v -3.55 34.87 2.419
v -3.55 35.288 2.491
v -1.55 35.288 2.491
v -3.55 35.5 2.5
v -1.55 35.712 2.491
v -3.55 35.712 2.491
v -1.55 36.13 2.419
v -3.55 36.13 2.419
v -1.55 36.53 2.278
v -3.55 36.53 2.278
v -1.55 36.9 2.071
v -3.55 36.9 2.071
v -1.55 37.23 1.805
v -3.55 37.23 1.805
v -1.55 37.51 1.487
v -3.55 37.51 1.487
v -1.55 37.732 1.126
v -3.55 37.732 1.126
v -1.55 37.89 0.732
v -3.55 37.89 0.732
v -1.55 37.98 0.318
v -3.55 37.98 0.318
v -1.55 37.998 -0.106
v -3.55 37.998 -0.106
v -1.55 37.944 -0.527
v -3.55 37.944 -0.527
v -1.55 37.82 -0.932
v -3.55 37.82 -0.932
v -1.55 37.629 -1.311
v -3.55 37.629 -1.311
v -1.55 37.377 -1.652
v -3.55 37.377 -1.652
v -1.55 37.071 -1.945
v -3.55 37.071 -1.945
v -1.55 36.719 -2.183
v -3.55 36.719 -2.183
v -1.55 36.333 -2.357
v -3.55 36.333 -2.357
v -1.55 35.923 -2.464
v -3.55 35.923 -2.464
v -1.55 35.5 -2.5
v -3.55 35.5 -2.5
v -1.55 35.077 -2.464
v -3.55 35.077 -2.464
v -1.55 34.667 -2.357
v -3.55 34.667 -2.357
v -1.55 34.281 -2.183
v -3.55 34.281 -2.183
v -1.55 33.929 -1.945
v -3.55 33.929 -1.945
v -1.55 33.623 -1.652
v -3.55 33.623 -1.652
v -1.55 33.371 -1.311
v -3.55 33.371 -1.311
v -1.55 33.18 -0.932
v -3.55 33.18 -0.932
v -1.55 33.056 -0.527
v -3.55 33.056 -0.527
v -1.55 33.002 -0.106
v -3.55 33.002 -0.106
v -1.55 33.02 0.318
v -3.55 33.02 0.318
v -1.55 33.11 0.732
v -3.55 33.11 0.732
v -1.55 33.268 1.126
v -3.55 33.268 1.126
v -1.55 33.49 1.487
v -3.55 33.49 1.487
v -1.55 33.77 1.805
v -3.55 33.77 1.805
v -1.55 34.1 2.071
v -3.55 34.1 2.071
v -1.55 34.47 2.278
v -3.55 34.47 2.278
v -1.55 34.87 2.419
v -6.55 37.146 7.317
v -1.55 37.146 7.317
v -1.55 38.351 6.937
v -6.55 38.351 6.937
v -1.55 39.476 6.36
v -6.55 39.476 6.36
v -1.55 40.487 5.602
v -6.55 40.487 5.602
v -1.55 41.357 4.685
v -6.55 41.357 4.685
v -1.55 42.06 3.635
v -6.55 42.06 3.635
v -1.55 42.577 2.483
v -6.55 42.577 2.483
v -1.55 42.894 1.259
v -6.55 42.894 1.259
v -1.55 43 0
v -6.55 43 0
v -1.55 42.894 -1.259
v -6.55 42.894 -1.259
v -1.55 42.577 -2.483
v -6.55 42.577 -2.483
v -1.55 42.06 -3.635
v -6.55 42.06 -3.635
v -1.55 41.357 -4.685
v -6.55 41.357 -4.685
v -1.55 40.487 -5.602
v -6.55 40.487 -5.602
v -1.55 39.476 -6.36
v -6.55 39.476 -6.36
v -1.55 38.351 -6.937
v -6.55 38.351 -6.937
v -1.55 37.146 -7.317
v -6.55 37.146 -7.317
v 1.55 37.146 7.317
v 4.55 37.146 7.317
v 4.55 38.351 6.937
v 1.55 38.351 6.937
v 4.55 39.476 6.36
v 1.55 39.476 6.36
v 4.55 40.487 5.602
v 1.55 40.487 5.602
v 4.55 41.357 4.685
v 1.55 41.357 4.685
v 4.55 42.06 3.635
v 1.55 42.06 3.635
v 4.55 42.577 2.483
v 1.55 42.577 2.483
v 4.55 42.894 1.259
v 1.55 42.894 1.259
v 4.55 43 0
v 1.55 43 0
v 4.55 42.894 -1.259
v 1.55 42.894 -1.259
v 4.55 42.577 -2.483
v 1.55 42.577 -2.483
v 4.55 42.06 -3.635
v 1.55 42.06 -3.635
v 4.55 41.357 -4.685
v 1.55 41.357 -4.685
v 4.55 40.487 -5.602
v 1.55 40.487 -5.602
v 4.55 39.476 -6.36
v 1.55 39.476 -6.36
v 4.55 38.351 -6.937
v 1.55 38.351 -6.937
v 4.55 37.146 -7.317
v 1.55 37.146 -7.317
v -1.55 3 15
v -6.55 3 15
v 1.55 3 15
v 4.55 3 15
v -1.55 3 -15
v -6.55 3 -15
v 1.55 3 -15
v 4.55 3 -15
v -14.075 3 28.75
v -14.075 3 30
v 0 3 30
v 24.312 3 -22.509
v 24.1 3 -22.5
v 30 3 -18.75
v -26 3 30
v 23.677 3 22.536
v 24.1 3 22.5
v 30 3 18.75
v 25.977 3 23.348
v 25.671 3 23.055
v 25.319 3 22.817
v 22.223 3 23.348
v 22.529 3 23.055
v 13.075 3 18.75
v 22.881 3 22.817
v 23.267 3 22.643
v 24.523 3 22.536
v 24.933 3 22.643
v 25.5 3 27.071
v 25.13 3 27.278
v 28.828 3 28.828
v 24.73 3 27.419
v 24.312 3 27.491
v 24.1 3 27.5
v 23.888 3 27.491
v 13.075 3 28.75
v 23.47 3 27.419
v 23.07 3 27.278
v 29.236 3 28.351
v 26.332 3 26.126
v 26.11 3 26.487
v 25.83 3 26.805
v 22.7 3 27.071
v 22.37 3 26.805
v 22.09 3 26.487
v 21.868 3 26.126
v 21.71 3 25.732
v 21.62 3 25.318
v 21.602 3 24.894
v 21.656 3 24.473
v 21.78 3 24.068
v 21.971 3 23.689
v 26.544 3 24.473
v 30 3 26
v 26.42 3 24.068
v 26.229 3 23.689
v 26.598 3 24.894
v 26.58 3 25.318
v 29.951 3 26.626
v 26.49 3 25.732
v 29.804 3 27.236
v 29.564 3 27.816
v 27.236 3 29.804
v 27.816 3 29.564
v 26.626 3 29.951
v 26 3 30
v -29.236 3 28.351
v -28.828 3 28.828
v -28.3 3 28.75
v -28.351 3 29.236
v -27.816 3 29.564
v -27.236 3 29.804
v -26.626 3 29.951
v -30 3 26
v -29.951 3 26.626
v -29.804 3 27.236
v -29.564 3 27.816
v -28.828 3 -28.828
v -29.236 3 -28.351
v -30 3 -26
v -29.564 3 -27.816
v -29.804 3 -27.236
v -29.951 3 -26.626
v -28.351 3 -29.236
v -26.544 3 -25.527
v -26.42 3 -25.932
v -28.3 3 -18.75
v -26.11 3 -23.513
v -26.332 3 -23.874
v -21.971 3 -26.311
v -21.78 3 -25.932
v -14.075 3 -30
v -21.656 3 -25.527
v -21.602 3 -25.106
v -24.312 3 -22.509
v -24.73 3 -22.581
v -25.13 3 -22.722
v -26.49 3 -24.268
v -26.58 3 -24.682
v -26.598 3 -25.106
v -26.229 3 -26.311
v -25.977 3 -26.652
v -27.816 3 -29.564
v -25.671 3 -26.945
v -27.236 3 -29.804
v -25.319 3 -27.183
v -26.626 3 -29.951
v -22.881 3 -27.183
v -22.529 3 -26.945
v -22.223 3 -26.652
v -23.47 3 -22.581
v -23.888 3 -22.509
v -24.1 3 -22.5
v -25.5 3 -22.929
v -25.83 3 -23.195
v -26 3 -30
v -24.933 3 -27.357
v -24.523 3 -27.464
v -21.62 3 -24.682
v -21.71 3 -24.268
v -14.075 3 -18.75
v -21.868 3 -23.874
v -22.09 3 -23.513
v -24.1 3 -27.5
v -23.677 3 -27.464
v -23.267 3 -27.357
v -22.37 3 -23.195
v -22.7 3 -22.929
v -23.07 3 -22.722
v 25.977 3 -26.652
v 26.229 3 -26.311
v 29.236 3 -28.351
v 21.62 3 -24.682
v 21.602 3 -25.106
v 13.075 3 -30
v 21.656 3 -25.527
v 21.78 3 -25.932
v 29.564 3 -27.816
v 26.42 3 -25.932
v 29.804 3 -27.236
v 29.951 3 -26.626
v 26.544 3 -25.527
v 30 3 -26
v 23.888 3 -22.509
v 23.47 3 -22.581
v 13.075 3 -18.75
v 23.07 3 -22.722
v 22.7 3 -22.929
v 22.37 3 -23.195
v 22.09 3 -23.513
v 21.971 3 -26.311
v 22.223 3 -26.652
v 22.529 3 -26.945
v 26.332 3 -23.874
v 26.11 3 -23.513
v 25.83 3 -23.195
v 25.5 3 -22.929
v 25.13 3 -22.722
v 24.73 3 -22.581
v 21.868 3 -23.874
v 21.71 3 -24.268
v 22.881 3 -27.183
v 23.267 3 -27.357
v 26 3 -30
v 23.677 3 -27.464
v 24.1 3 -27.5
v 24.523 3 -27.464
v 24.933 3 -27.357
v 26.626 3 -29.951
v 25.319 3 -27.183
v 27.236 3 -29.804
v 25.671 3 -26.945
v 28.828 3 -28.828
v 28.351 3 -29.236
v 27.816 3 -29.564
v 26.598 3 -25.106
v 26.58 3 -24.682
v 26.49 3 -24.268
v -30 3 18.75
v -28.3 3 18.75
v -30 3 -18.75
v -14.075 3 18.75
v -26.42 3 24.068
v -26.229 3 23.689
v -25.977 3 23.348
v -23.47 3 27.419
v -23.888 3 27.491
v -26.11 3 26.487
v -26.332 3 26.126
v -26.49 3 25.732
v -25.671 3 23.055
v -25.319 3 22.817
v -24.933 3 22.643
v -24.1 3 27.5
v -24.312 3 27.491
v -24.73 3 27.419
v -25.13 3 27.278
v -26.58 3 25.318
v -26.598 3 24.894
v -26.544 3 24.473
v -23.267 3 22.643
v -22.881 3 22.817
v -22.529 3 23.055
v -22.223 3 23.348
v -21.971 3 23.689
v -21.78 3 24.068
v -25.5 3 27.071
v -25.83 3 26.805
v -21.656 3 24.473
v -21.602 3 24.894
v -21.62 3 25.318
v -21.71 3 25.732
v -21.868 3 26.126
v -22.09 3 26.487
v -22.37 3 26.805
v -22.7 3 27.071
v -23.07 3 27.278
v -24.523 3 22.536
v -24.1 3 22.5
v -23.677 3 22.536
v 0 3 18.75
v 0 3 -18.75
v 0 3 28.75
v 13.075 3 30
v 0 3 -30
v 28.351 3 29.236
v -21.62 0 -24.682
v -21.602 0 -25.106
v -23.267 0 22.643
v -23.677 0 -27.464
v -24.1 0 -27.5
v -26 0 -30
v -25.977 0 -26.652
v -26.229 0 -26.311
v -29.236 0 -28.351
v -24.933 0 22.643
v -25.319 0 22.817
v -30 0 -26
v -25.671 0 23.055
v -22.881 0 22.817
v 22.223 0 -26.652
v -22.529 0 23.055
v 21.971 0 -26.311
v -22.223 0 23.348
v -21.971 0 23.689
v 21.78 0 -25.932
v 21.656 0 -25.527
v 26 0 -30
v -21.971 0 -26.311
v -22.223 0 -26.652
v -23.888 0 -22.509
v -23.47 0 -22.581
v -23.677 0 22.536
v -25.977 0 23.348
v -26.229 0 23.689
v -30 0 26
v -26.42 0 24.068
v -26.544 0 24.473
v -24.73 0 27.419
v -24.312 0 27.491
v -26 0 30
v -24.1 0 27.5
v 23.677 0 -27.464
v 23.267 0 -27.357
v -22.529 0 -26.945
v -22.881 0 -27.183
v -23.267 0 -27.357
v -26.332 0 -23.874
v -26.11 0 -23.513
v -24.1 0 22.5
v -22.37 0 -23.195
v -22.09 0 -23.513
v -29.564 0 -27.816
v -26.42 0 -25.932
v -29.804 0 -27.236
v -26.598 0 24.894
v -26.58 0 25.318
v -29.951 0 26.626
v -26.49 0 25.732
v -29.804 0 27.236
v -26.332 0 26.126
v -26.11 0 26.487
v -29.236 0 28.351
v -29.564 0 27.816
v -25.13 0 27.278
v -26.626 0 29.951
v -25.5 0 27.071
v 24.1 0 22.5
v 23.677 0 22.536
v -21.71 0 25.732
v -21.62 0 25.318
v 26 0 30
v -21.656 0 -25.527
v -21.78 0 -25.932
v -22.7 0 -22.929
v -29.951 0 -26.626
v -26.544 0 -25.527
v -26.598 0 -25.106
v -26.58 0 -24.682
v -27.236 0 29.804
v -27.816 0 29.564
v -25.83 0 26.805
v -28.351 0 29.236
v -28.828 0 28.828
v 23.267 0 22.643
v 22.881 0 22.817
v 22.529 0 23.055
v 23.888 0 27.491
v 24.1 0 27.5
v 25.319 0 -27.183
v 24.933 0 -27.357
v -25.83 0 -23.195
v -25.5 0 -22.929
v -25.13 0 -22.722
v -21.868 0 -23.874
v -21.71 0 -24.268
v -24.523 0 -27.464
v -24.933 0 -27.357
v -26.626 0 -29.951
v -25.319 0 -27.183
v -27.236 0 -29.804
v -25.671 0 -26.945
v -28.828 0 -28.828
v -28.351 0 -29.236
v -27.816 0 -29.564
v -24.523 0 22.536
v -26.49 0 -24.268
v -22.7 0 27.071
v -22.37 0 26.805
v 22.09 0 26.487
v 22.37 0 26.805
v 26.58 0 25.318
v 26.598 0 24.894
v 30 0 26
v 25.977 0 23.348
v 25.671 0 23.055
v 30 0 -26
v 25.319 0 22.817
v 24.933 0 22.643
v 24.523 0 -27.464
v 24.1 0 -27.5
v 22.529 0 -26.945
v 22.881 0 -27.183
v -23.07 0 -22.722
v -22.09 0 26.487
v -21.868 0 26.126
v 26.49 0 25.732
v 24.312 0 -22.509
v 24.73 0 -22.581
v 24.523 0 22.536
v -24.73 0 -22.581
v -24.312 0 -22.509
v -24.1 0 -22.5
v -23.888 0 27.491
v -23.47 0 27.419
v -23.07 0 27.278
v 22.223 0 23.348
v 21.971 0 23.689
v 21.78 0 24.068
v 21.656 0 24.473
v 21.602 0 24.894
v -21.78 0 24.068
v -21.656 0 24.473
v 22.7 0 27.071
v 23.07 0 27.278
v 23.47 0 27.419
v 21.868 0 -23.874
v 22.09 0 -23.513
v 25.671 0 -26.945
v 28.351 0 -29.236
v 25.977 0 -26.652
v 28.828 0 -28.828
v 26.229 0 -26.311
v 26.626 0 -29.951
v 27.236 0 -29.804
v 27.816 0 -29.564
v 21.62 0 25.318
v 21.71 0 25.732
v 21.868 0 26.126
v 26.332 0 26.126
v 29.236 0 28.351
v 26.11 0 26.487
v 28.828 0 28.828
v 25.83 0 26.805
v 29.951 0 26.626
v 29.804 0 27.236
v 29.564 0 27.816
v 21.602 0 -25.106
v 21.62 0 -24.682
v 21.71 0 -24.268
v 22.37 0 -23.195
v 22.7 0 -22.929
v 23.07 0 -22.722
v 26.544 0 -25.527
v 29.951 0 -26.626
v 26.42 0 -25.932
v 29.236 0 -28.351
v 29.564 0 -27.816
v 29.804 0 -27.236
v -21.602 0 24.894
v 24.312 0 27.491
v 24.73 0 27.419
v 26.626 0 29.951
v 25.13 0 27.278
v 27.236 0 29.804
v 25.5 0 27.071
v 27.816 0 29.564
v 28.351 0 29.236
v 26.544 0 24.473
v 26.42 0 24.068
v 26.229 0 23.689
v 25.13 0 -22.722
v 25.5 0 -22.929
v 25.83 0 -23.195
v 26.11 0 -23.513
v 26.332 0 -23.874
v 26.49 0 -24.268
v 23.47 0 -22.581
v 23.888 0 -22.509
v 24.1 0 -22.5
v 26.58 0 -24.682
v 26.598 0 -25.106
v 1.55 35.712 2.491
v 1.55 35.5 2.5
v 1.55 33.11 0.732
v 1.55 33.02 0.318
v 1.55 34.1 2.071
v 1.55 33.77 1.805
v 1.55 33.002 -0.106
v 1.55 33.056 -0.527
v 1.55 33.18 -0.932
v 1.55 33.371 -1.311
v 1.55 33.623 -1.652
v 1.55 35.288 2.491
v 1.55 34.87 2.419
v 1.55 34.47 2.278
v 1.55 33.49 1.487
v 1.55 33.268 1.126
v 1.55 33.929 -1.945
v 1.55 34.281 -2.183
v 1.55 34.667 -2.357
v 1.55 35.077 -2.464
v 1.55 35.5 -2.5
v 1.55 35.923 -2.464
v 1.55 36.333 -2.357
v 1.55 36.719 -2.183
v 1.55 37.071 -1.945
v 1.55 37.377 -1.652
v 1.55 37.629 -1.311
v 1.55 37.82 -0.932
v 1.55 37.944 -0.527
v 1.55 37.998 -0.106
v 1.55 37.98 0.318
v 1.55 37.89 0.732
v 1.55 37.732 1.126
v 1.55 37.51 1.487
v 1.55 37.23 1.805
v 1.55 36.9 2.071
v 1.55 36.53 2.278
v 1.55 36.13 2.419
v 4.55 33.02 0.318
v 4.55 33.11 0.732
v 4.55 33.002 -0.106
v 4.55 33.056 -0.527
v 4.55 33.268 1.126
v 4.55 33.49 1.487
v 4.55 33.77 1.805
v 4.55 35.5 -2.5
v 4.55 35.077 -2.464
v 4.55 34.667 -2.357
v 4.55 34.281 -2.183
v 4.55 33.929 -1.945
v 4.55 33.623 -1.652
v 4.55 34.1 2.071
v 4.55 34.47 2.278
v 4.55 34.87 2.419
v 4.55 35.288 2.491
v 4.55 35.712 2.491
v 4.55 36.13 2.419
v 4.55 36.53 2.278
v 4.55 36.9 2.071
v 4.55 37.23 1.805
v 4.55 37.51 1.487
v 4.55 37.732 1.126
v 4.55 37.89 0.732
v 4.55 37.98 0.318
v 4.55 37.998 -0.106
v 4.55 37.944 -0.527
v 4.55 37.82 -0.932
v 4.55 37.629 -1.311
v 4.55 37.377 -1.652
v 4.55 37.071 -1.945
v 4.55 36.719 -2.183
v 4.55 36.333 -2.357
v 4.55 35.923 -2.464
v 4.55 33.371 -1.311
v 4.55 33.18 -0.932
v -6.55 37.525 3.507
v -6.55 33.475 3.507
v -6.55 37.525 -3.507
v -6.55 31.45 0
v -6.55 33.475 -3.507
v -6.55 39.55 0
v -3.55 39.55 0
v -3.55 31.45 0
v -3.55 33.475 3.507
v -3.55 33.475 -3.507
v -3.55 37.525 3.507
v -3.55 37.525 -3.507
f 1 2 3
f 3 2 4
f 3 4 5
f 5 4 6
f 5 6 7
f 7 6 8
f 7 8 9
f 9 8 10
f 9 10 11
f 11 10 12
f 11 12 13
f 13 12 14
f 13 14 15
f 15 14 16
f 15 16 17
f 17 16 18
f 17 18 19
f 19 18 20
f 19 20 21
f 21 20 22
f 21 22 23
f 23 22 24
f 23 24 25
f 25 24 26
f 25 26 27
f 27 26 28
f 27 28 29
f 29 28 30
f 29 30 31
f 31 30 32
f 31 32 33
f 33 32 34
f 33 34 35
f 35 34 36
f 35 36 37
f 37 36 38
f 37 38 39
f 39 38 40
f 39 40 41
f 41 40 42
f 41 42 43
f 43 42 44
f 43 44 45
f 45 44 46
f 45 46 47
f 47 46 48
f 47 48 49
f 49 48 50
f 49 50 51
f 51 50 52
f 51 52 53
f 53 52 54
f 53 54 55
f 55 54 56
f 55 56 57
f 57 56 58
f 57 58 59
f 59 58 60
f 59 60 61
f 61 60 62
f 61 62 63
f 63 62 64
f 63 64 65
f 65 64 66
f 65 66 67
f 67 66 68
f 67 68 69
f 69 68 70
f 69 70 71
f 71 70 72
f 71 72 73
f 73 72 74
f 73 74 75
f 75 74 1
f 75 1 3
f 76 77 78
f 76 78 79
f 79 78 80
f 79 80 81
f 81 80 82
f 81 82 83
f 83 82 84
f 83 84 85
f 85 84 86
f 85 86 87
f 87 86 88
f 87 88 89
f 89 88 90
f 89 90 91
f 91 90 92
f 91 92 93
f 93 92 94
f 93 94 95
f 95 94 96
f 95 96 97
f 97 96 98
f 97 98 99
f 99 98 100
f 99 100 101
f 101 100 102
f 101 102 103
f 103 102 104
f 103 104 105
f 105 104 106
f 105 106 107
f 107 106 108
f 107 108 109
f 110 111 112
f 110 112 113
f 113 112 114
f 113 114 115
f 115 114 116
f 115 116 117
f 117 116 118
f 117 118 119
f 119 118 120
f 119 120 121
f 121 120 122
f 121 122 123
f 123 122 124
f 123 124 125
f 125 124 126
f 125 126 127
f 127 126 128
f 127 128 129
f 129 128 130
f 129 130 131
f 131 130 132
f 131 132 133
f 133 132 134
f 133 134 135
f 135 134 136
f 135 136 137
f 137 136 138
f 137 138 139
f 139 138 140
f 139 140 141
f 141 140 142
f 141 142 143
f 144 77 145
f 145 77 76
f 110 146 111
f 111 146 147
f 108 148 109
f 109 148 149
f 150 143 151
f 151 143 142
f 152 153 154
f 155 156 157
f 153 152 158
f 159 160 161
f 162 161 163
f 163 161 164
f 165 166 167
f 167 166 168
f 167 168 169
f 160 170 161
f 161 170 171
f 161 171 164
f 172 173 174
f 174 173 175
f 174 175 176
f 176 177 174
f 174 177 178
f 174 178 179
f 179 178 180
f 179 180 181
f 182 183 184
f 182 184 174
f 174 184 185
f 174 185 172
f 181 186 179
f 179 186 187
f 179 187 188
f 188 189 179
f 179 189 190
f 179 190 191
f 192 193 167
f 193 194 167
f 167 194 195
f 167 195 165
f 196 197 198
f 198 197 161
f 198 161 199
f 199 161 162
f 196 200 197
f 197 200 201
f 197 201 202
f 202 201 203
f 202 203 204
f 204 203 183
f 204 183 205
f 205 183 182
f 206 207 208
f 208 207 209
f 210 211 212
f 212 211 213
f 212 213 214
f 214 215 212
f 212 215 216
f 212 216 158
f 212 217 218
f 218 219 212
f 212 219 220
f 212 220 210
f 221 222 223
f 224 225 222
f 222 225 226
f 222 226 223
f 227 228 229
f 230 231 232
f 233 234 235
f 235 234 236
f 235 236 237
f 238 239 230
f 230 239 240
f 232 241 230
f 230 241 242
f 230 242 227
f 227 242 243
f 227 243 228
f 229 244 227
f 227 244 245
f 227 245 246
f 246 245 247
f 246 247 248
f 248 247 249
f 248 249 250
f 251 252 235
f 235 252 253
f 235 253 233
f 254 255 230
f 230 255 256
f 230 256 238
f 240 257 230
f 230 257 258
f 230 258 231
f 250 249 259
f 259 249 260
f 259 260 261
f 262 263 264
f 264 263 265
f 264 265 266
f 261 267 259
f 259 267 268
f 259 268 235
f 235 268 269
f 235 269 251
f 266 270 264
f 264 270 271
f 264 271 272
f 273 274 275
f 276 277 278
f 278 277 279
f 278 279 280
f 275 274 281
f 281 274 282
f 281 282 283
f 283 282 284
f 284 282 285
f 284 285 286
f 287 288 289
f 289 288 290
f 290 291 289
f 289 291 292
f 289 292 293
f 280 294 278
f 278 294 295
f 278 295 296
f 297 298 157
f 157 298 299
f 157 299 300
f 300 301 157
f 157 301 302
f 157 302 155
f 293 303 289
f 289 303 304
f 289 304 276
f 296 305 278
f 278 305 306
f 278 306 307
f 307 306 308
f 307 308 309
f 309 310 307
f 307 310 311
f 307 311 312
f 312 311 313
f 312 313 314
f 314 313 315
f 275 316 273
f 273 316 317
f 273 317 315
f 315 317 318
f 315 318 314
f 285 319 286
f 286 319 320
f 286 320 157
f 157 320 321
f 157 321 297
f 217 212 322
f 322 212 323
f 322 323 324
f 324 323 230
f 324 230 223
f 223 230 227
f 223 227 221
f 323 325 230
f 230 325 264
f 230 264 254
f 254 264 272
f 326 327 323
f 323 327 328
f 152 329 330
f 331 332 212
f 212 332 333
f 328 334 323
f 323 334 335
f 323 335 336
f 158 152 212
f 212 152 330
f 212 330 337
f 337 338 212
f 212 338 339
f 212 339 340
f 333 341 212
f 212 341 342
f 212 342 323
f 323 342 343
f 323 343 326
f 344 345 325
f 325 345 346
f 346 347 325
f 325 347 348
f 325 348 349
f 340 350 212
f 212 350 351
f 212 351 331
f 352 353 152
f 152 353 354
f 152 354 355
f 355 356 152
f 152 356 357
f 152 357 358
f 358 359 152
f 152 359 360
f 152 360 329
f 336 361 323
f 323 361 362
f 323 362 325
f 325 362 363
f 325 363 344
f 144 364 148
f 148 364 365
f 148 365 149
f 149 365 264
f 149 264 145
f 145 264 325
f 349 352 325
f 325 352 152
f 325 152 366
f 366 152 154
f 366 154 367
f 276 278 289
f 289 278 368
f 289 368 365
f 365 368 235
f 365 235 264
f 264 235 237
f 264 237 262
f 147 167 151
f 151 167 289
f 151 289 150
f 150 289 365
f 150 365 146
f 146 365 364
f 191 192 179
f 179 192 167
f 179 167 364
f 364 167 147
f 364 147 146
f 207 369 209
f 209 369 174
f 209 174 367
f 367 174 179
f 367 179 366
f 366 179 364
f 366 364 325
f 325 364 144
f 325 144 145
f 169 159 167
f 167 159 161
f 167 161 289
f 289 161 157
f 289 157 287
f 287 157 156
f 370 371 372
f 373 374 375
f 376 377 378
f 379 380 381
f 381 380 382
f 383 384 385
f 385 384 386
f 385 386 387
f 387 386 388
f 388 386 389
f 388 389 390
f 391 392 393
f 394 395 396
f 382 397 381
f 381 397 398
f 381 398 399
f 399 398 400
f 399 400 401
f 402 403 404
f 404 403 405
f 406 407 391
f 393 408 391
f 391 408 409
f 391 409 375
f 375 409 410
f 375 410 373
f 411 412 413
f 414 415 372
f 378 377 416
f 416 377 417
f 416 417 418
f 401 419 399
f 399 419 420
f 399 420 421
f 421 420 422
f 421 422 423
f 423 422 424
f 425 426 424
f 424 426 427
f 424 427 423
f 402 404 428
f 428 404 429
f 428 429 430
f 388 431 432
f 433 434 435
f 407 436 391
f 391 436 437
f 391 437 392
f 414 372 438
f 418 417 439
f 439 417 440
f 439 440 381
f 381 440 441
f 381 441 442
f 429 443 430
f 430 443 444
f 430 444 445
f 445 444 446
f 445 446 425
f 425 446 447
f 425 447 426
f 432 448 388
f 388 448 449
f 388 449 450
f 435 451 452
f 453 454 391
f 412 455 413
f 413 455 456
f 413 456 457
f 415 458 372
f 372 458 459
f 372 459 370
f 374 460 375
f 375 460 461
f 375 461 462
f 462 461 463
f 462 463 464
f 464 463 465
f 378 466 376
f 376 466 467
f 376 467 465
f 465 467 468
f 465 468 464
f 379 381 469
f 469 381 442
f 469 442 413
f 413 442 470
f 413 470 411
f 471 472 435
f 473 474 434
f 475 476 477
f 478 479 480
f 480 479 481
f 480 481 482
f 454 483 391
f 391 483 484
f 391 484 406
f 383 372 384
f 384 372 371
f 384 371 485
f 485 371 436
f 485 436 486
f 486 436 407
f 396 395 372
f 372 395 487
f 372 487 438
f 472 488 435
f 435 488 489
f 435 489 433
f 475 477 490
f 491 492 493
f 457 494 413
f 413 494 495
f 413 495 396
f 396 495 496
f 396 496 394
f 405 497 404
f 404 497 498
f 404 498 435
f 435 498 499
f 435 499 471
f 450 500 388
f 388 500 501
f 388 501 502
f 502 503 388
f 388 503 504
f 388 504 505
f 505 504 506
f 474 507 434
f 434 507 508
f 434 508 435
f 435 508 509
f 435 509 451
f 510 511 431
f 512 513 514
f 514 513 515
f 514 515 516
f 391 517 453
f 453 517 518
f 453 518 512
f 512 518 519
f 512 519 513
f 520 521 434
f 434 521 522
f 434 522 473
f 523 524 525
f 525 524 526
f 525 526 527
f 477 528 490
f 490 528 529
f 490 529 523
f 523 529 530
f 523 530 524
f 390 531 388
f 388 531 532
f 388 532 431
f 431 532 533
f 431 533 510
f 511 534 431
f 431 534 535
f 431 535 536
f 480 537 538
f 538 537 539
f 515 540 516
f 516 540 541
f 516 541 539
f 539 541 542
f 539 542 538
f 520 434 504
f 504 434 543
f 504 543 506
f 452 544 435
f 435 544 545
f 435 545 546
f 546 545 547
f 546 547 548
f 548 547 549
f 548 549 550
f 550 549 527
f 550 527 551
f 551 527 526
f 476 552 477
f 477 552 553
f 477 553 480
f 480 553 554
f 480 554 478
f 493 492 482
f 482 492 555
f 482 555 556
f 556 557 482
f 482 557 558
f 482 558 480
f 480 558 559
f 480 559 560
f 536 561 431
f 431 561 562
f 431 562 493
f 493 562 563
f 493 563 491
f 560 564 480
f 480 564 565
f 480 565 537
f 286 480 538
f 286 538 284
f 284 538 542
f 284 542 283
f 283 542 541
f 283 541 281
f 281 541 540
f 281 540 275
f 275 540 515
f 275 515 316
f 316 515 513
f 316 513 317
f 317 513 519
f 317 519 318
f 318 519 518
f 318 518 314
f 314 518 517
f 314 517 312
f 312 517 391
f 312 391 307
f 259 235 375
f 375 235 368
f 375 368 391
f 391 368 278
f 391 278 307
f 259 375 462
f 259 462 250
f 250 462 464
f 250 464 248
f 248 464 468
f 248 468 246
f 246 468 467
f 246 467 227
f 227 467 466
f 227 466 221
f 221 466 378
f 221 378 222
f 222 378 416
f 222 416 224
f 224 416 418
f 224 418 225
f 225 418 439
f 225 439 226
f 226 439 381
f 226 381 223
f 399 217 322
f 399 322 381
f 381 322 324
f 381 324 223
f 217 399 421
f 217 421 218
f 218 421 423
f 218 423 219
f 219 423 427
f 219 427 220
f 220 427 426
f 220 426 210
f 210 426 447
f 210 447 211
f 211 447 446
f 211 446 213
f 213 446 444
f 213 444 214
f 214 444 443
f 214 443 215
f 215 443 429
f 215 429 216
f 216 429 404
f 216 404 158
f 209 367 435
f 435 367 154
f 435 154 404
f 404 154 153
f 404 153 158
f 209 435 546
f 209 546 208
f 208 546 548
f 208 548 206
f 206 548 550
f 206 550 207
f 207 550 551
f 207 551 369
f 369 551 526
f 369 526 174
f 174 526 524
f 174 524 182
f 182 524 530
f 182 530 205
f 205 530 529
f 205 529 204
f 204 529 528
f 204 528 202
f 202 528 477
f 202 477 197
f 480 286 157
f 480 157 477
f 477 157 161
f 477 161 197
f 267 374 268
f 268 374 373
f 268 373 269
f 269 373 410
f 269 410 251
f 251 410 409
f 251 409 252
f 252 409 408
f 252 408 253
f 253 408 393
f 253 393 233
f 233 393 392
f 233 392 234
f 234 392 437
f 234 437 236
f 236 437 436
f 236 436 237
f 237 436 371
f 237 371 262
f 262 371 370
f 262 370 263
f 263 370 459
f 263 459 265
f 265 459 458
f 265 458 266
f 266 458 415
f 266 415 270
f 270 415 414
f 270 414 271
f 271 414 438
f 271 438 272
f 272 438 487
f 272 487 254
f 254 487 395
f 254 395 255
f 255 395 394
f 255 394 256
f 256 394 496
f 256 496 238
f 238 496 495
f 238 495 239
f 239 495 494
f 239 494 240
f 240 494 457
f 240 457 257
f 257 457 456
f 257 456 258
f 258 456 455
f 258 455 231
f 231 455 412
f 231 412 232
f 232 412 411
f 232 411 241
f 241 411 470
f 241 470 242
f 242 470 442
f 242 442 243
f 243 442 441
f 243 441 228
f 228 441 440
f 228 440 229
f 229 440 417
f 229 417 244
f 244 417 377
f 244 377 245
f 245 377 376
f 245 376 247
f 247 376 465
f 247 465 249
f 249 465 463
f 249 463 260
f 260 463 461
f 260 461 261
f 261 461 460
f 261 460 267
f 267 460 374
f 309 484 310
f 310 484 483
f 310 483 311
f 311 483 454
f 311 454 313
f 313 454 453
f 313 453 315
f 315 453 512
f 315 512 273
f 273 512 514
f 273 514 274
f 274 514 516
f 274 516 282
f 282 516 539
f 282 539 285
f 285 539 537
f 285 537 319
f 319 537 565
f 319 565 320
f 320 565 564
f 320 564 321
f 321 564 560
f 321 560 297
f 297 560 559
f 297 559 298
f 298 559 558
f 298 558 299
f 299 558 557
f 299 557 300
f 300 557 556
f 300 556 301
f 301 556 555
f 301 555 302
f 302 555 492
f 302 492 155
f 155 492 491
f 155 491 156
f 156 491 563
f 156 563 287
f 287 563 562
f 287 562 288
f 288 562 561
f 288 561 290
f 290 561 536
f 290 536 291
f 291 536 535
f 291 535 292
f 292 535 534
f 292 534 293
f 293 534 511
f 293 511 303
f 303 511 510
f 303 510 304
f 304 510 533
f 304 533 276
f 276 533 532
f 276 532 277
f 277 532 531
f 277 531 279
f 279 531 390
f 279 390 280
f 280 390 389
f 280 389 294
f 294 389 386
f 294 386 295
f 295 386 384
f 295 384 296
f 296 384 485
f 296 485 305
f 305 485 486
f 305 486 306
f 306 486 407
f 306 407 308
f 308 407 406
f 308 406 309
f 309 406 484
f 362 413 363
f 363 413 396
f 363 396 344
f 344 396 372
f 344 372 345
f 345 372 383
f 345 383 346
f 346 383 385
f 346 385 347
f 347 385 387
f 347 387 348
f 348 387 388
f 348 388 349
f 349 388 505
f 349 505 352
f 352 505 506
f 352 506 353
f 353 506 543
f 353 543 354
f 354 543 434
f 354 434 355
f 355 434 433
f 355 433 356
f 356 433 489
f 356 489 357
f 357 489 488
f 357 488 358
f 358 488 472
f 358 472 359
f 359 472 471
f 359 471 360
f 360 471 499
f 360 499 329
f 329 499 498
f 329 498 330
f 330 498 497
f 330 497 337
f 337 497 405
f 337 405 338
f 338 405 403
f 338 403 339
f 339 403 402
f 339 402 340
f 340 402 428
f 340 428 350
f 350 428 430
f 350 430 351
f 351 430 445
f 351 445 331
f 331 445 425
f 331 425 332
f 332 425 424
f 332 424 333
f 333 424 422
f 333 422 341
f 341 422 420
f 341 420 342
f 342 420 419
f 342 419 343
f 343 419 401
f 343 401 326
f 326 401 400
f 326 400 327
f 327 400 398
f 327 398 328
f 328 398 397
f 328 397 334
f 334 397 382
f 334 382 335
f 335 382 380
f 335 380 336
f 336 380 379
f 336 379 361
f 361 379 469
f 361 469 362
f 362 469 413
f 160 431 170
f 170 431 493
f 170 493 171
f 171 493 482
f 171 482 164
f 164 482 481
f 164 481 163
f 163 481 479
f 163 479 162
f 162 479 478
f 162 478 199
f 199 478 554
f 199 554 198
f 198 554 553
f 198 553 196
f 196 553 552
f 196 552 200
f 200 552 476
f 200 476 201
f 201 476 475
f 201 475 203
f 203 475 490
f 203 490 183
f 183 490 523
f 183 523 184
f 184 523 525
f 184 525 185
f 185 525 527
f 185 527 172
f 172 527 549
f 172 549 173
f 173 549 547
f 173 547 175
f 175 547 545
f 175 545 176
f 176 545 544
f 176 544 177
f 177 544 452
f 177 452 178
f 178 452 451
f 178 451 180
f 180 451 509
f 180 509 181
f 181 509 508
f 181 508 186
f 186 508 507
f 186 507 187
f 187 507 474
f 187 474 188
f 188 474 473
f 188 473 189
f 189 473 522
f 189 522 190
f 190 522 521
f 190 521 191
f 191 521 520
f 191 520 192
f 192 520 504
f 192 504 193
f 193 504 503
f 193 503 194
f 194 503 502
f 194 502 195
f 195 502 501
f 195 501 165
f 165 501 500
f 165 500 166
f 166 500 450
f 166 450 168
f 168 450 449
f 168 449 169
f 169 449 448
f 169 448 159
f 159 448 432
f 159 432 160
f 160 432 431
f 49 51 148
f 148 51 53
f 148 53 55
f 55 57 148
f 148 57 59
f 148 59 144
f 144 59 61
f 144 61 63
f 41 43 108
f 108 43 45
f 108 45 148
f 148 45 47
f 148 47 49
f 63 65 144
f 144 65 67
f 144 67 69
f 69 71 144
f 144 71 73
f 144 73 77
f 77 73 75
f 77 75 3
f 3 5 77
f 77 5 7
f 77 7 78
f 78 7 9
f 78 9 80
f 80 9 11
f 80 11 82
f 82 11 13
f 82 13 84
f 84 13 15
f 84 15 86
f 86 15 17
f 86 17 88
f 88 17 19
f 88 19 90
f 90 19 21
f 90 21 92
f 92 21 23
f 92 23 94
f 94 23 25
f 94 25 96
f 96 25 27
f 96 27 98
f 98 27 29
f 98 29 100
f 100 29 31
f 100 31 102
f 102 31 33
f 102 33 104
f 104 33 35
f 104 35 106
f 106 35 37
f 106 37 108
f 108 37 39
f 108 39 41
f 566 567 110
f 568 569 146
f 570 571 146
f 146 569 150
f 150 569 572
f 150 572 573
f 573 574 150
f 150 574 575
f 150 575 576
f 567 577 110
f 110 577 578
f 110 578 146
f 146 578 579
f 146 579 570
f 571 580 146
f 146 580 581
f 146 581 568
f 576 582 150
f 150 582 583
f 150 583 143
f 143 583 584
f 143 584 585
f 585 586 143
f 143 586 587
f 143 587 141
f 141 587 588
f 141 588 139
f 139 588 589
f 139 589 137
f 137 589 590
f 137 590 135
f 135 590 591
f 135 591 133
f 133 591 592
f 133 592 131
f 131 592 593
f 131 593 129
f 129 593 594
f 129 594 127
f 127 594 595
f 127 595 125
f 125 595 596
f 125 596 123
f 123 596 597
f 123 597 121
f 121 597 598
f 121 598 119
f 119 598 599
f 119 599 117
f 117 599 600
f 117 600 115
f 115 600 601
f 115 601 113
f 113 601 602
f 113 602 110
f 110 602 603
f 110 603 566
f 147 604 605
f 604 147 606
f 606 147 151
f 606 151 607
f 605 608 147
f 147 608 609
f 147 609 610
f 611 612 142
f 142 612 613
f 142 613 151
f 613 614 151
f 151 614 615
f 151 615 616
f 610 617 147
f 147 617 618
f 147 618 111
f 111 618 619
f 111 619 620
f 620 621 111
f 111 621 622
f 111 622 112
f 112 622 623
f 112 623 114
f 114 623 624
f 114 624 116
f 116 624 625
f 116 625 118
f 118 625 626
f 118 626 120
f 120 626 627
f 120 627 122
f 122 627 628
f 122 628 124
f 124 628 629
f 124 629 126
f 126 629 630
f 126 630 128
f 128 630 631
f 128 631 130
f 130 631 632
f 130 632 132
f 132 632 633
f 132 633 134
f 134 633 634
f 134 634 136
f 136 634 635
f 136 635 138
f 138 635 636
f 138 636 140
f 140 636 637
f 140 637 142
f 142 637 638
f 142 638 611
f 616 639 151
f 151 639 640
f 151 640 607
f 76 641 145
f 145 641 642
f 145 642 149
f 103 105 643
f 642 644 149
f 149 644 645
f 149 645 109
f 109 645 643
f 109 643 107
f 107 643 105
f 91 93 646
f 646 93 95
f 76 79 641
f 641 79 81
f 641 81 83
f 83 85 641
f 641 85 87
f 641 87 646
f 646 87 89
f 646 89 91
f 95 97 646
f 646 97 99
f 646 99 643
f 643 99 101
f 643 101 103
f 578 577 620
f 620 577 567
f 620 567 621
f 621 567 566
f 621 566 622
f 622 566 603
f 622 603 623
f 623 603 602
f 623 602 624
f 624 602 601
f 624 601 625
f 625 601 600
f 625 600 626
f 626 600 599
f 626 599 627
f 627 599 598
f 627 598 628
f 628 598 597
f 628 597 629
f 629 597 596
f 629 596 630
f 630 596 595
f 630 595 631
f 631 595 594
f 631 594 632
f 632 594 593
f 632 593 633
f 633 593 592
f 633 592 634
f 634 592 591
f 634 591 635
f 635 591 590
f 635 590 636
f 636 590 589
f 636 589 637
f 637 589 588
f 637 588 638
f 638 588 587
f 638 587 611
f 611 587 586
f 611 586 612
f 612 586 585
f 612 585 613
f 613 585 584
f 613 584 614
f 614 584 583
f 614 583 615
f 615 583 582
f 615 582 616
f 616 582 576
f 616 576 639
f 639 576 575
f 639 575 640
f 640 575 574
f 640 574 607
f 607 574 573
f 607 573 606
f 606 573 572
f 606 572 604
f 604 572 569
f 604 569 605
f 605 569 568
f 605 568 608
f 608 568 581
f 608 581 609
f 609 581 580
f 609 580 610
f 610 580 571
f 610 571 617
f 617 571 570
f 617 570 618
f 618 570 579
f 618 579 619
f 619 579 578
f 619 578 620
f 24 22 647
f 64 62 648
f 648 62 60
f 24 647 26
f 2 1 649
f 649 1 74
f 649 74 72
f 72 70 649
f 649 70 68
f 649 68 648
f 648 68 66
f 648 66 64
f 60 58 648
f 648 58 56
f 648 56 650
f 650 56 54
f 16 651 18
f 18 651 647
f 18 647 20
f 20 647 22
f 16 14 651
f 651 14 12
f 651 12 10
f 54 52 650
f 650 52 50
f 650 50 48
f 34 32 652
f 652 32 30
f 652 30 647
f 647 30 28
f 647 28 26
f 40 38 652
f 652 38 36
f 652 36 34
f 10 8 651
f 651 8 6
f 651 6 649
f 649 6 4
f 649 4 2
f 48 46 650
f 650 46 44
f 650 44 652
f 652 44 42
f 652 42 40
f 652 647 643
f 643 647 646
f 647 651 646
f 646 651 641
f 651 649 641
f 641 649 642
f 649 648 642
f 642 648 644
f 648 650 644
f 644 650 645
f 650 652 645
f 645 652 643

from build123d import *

# Parameters (mm, degrees)
SKETCH2_R           = 2.5
BOSS_EXTRUDE1_DEPTH = 3
SKETCH3_W           = 30
SKETCH3_H           = 30
BOSS_EXTRUDE2_DEPTH = 40
CUT_EXTRUDE2_DEPTH  = 30
CUT_EXTRUDE3_DEPTH  = 30
SKETCH12_W          = 3.1
SKETCH12_H          = 30
SKETCH12_W_2        = 8.45
SKETCH12_W_3        = 10.45
CUT_EXTRUDE4_DEPTH  = 20
SKETCH13_R          = 2.5
CUT_EXTRUDE5_DEPTH  = 15
CUT_EXTRUDE6_DEPTH  = 3


with BuildPart() as part:
    # Sketch2 → Boss-Extrude1 (new body)
    with BuildSketch(Plane(origin=(0, 0, 0), x_dir=(1, 0, 0), z_dir=(0, 1, 0))):
        with BuildLine():
            Line((-26, -30), (26, -30))
            ThreePointArc((26, -30), (28.828427125, -28.828427125), (30, -26))
            Line((30, -26), (30, 26))
            ThreePointArc((30, 26), (28.828427125, 28.828427125), (26, 30))
            Line((26, 30), (-26, 30))
            ThreePointArc((-26, 30), (-28.828427125, 28.828427125), (-30, 26))
            Line((-30, 26), (-30, -26))
            ThreePointArc((-30, -26), (-28.828427125, -28.828427125), (-26, -30))
        make_face()
        with Locations(Location((-24.1, 25, 0), (0, 0, 270))):
            Circle(SKETCH2_R, mode=Mode.SUBTRACT)
        with Locations(Location((24.1, 25, 0), (0, 0, 270))):
            Circle(SKETCH2_R, mode=Mode.SUBTRACT)
        with Locations(Location((-24.1, -25, 0), (0, 0, 270))):
            Circle(SKETCH2_R, mode=Mode.SUBTRACT)
        with Locations(Location((24.1, -25, 0), (0, 0, 270))):
            Circle(SKETCH2_R, mode=Mode.SUBTRACT)
    extrude(amount=BOSS_EXTRUDE1_DEPTH)

    # Sketch3 → Boss-Extrude2 (add)
    with BuildSketch(Plane(origin=(0, 3, 0), x_dir=(1, 0, 0), z_dir=(0, 1, 0))):
        Rectangle(SKETCH3_W, SKETCH3_H)
    extrude(amount=BOSS_EXTRUDE2_DEPTH)

    # Sketch8 → Cut-Extrude2 (cut)
    with BuildSketch(Plane(origin=(15, 0, 0), x_dir=(0, 0, -1), z_dir=(1, 0, 0))):
        with BuildLine():
            Line((-7.317073171, 37.146341463), (-15, 3))
            Line((-15, 3), (-15, 43))
            Line((-15, 43), (0, 43))
            ThreePointArc((0, 43), (-4.685212857, 41.356516071), (-7.317073171, 37.146341463))
        make_face()
    extrude(amount=-CUT_EXTRUDE2_DEPTH, mode=Mode.SUBTRACT)

    # Sketch10 → Cut-Extrude3 (cut)
    with BuildSketch(Plane(origin=(15, 0, 0), x_dir=(0, 0, -1), z_dir=(1, 0, 0))):
        with BuildLine():
            Line((7.317073171, 37.146341463), (15, 3))
            Line((15, 3), (15, 43))
            Line((15, 43), (0, 43))
            ThreePointArc((0, 43), (4.685212857, 41.356516071), (7.317073171, 37.146341463))
        make_face()
    extrude(amount=-CUT_EXTRUDE3_DEPTH, mode=Mode.SUBTRACT)

    # Sketch12 → Cut-Extrude4 (cut, symmetric)
    with BuildSketch(Plane(origin=(0, 23, 0), x_dir=(1, 0, 0), z_dir=(0, 1, 0))):
        Rectangle(SKETCH12_W, SKETCH12_H)
        with Locations((-10.775, 0)):
            Rectangle(SKETCH12_W_2, SKETCH12_H)
        with Locations((9.775, 0)):
            Rectangle(SKETCH12_W_3, SKETCH12_H)
    extrude(amount=CUT_EXTRUDE4_DEPTH, both=True, mode=Mode.SUBTRACT)

    # Sketch13 → Cut-Extrude5 (cut, symmetric)
    with BuildSketch(Plane(origin=(0, 0, 0), x_dir=(0, 0, -1), z_dir=(1, 0, 0))):
        with Locations((0, 35.5)):
            Circle(SKETCH13_R)
    extrude(amount=CUT_EXTRUDE5_DEPTH, both=True, mode=Mode.SUBTRACT)

    # Sketch14 → Cut-Extrude6 (cut)
    with BuildSketch(Plane.ZY.offset(6.55)):
        Polygon((-3.507402885, 37.525), (-3.507402885, 33.475), (0, 31.45), (3.507402885, 33.475), (3.507402885, 37.525), (0, 39.55), align=None)
    extrude(amount=-CUT_EXTRUDE6_DEPTH, mode=Mode.SUBTRACT)


solid = part.part
